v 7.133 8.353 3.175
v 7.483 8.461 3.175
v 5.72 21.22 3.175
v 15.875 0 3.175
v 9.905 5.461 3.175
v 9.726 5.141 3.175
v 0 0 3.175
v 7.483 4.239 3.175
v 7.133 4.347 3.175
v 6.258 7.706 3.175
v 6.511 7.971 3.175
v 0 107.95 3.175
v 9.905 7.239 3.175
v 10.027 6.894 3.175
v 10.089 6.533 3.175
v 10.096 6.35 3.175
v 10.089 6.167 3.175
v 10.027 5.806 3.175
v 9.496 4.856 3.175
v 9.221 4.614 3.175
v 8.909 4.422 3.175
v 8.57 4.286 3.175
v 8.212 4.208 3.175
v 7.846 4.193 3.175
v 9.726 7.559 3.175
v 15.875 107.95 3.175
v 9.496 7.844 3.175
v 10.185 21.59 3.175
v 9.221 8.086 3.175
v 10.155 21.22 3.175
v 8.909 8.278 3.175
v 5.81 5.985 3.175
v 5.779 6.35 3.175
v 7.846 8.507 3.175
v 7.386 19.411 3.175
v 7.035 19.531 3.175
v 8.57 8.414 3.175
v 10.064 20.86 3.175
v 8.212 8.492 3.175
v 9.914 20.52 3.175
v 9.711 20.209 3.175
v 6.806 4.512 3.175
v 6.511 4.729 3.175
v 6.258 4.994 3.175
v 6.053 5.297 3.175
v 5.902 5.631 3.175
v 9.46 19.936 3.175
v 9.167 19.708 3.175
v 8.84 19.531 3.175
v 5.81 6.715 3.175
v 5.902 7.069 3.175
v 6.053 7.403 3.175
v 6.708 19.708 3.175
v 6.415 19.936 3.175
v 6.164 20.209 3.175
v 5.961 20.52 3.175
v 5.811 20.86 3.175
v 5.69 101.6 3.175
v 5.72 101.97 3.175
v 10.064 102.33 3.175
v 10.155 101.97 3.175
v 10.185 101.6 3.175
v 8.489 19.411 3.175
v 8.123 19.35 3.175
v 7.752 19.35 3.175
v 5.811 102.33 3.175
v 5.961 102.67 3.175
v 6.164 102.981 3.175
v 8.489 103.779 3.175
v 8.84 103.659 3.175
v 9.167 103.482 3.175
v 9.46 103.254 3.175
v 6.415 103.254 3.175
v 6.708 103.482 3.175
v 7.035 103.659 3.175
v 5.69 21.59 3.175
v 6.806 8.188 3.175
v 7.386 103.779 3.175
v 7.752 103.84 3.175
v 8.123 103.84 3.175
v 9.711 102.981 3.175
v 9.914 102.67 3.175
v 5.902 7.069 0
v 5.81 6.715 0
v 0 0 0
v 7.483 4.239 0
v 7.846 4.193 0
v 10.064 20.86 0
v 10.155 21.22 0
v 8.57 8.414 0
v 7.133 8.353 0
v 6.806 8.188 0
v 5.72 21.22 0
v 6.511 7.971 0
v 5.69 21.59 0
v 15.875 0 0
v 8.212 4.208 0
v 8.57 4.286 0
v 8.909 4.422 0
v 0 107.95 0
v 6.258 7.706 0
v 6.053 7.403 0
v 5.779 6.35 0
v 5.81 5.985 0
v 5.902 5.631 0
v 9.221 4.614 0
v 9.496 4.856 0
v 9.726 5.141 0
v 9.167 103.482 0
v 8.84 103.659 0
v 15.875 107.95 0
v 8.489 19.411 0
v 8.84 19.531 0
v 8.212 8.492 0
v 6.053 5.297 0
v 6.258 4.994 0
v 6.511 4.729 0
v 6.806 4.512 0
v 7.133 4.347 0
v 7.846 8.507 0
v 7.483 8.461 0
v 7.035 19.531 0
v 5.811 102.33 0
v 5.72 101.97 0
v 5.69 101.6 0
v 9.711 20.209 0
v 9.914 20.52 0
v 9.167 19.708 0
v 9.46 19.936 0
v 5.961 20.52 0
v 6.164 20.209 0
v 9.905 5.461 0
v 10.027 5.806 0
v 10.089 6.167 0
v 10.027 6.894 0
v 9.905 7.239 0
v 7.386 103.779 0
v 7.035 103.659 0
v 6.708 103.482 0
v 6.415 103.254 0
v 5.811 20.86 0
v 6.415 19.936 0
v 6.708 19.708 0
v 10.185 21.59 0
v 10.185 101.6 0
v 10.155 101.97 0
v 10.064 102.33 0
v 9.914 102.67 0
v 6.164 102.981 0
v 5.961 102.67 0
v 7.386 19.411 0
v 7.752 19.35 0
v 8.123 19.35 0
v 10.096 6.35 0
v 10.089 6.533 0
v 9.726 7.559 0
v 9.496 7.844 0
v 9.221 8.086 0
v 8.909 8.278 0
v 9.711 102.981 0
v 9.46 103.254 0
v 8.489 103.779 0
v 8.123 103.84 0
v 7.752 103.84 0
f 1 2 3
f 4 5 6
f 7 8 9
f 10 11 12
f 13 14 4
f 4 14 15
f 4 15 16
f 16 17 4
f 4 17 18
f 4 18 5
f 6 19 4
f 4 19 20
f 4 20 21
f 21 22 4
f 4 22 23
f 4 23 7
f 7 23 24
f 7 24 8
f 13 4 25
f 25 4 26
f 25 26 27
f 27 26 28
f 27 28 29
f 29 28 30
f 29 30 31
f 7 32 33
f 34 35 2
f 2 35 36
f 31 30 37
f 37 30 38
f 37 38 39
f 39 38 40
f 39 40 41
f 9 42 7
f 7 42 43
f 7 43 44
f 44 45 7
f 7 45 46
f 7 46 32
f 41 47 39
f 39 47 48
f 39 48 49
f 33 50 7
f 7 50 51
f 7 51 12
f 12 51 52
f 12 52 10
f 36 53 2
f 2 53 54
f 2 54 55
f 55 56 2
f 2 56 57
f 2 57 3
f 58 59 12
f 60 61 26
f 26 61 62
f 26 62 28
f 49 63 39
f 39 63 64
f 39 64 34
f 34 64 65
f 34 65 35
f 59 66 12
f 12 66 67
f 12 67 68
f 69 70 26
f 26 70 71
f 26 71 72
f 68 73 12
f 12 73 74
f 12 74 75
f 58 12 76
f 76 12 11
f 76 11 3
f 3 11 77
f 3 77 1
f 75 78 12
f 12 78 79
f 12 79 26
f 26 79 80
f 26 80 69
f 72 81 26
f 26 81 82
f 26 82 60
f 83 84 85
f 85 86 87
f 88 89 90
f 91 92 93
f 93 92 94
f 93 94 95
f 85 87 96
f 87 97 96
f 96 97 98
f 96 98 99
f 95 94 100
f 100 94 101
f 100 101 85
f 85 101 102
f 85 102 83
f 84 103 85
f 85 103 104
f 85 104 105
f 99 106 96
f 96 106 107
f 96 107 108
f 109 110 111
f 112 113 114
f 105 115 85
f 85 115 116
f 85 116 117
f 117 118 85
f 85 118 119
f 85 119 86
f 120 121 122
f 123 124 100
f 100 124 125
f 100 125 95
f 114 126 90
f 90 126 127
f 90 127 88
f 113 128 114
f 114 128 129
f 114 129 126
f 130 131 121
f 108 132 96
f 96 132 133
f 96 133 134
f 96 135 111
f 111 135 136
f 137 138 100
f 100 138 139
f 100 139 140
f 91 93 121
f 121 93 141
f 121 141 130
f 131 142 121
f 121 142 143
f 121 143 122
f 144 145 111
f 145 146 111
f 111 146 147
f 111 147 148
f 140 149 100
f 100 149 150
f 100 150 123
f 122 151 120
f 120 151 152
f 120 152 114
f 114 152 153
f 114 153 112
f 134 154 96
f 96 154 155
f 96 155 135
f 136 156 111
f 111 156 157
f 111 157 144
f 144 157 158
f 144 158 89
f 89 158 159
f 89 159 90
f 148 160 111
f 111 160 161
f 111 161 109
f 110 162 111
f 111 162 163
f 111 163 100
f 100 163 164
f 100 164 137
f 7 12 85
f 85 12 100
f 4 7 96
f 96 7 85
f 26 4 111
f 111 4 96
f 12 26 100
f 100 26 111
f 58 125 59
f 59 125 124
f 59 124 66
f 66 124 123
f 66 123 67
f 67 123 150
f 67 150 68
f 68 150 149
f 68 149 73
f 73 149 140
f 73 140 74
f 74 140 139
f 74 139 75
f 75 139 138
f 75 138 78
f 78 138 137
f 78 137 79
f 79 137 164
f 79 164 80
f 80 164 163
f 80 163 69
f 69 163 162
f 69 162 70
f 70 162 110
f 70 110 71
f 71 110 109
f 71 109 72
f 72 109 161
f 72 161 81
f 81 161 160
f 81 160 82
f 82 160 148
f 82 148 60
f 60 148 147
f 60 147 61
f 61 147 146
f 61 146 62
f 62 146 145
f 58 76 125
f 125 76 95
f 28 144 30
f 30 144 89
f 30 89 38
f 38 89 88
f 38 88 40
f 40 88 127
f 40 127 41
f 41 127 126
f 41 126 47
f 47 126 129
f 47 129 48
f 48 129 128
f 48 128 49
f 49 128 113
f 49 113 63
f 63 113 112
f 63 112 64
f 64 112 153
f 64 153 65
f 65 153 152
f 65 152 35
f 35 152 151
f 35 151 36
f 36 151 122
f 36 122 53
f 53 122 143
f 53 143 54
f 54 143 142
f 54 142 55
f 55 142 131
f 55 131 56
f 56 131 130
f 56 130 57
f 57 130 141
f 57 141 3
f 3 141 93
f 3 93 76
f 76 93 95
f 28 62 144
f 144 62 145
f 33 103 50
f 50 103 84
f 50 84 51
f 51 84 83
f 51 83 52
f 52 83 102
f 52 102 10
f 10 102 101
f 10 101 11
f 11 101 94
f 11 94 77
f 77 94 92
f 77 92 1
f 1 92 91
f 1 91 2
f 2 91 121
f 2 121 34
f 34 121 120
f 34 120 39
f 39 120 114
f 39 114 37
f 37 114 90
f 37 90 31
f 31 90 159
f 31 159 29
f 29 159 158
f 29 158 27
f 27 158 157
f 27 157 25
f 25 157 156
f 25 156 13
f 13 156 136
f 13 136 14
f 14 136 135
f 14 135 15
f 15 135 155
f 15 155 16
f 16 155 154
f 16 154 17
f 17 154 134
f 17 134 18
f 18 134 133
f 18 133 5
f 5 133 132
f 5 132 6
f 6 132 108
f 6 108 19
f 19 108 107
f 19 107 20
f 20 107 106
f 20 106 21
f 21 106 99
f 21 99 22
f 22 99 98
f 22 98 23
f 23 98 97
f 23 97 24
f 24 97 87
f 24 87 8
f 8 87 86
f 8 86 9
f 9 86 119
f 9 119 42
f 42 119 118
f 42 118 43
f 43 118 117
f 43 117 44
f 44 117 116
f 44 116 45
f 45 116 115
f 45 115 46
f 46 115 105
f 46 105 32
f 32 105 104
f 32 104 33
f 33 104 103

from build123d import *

# Parameters (mm, degrees)
SKETCH1_W           = 15.875
SKETCH1_H           = 107.95
SKETCH1_R           = 2.159
BOSS_EXTRUDE1_DEPTH = 3.175


with BuildPart() as part:
    # Sketch1 → Boss-Extrude1 (new body)
    with BuildSketch(Plane.XY):
        with Locations((7.9375, 53.975)):
            Rectangle(SKETCH1_W, SKETCH1_H)
        with Locations((7.9375, 6.35)):
            Circle(SKETCH1_R, mode=Mode.SUBTRACT)
        with BuildLine():
            Line((10.1854, 101.6), (10.1854, 21.59))
            ThreePointArc((10.1854, 21.59), (7.9375, 19.3421), (5.6896, 21.59))
            Line((5.6896, 21.59), (5.6896, 101.6))
            ThreePointArc((5.6896, 101.6), (7.9375, 103.8479), (10.1854, 101.6))
        make_face(mode=Mode.SUBTRACT)
    extrude(amount=BOSS_EXTRUDE1_DEPTH)


solid = part.part
